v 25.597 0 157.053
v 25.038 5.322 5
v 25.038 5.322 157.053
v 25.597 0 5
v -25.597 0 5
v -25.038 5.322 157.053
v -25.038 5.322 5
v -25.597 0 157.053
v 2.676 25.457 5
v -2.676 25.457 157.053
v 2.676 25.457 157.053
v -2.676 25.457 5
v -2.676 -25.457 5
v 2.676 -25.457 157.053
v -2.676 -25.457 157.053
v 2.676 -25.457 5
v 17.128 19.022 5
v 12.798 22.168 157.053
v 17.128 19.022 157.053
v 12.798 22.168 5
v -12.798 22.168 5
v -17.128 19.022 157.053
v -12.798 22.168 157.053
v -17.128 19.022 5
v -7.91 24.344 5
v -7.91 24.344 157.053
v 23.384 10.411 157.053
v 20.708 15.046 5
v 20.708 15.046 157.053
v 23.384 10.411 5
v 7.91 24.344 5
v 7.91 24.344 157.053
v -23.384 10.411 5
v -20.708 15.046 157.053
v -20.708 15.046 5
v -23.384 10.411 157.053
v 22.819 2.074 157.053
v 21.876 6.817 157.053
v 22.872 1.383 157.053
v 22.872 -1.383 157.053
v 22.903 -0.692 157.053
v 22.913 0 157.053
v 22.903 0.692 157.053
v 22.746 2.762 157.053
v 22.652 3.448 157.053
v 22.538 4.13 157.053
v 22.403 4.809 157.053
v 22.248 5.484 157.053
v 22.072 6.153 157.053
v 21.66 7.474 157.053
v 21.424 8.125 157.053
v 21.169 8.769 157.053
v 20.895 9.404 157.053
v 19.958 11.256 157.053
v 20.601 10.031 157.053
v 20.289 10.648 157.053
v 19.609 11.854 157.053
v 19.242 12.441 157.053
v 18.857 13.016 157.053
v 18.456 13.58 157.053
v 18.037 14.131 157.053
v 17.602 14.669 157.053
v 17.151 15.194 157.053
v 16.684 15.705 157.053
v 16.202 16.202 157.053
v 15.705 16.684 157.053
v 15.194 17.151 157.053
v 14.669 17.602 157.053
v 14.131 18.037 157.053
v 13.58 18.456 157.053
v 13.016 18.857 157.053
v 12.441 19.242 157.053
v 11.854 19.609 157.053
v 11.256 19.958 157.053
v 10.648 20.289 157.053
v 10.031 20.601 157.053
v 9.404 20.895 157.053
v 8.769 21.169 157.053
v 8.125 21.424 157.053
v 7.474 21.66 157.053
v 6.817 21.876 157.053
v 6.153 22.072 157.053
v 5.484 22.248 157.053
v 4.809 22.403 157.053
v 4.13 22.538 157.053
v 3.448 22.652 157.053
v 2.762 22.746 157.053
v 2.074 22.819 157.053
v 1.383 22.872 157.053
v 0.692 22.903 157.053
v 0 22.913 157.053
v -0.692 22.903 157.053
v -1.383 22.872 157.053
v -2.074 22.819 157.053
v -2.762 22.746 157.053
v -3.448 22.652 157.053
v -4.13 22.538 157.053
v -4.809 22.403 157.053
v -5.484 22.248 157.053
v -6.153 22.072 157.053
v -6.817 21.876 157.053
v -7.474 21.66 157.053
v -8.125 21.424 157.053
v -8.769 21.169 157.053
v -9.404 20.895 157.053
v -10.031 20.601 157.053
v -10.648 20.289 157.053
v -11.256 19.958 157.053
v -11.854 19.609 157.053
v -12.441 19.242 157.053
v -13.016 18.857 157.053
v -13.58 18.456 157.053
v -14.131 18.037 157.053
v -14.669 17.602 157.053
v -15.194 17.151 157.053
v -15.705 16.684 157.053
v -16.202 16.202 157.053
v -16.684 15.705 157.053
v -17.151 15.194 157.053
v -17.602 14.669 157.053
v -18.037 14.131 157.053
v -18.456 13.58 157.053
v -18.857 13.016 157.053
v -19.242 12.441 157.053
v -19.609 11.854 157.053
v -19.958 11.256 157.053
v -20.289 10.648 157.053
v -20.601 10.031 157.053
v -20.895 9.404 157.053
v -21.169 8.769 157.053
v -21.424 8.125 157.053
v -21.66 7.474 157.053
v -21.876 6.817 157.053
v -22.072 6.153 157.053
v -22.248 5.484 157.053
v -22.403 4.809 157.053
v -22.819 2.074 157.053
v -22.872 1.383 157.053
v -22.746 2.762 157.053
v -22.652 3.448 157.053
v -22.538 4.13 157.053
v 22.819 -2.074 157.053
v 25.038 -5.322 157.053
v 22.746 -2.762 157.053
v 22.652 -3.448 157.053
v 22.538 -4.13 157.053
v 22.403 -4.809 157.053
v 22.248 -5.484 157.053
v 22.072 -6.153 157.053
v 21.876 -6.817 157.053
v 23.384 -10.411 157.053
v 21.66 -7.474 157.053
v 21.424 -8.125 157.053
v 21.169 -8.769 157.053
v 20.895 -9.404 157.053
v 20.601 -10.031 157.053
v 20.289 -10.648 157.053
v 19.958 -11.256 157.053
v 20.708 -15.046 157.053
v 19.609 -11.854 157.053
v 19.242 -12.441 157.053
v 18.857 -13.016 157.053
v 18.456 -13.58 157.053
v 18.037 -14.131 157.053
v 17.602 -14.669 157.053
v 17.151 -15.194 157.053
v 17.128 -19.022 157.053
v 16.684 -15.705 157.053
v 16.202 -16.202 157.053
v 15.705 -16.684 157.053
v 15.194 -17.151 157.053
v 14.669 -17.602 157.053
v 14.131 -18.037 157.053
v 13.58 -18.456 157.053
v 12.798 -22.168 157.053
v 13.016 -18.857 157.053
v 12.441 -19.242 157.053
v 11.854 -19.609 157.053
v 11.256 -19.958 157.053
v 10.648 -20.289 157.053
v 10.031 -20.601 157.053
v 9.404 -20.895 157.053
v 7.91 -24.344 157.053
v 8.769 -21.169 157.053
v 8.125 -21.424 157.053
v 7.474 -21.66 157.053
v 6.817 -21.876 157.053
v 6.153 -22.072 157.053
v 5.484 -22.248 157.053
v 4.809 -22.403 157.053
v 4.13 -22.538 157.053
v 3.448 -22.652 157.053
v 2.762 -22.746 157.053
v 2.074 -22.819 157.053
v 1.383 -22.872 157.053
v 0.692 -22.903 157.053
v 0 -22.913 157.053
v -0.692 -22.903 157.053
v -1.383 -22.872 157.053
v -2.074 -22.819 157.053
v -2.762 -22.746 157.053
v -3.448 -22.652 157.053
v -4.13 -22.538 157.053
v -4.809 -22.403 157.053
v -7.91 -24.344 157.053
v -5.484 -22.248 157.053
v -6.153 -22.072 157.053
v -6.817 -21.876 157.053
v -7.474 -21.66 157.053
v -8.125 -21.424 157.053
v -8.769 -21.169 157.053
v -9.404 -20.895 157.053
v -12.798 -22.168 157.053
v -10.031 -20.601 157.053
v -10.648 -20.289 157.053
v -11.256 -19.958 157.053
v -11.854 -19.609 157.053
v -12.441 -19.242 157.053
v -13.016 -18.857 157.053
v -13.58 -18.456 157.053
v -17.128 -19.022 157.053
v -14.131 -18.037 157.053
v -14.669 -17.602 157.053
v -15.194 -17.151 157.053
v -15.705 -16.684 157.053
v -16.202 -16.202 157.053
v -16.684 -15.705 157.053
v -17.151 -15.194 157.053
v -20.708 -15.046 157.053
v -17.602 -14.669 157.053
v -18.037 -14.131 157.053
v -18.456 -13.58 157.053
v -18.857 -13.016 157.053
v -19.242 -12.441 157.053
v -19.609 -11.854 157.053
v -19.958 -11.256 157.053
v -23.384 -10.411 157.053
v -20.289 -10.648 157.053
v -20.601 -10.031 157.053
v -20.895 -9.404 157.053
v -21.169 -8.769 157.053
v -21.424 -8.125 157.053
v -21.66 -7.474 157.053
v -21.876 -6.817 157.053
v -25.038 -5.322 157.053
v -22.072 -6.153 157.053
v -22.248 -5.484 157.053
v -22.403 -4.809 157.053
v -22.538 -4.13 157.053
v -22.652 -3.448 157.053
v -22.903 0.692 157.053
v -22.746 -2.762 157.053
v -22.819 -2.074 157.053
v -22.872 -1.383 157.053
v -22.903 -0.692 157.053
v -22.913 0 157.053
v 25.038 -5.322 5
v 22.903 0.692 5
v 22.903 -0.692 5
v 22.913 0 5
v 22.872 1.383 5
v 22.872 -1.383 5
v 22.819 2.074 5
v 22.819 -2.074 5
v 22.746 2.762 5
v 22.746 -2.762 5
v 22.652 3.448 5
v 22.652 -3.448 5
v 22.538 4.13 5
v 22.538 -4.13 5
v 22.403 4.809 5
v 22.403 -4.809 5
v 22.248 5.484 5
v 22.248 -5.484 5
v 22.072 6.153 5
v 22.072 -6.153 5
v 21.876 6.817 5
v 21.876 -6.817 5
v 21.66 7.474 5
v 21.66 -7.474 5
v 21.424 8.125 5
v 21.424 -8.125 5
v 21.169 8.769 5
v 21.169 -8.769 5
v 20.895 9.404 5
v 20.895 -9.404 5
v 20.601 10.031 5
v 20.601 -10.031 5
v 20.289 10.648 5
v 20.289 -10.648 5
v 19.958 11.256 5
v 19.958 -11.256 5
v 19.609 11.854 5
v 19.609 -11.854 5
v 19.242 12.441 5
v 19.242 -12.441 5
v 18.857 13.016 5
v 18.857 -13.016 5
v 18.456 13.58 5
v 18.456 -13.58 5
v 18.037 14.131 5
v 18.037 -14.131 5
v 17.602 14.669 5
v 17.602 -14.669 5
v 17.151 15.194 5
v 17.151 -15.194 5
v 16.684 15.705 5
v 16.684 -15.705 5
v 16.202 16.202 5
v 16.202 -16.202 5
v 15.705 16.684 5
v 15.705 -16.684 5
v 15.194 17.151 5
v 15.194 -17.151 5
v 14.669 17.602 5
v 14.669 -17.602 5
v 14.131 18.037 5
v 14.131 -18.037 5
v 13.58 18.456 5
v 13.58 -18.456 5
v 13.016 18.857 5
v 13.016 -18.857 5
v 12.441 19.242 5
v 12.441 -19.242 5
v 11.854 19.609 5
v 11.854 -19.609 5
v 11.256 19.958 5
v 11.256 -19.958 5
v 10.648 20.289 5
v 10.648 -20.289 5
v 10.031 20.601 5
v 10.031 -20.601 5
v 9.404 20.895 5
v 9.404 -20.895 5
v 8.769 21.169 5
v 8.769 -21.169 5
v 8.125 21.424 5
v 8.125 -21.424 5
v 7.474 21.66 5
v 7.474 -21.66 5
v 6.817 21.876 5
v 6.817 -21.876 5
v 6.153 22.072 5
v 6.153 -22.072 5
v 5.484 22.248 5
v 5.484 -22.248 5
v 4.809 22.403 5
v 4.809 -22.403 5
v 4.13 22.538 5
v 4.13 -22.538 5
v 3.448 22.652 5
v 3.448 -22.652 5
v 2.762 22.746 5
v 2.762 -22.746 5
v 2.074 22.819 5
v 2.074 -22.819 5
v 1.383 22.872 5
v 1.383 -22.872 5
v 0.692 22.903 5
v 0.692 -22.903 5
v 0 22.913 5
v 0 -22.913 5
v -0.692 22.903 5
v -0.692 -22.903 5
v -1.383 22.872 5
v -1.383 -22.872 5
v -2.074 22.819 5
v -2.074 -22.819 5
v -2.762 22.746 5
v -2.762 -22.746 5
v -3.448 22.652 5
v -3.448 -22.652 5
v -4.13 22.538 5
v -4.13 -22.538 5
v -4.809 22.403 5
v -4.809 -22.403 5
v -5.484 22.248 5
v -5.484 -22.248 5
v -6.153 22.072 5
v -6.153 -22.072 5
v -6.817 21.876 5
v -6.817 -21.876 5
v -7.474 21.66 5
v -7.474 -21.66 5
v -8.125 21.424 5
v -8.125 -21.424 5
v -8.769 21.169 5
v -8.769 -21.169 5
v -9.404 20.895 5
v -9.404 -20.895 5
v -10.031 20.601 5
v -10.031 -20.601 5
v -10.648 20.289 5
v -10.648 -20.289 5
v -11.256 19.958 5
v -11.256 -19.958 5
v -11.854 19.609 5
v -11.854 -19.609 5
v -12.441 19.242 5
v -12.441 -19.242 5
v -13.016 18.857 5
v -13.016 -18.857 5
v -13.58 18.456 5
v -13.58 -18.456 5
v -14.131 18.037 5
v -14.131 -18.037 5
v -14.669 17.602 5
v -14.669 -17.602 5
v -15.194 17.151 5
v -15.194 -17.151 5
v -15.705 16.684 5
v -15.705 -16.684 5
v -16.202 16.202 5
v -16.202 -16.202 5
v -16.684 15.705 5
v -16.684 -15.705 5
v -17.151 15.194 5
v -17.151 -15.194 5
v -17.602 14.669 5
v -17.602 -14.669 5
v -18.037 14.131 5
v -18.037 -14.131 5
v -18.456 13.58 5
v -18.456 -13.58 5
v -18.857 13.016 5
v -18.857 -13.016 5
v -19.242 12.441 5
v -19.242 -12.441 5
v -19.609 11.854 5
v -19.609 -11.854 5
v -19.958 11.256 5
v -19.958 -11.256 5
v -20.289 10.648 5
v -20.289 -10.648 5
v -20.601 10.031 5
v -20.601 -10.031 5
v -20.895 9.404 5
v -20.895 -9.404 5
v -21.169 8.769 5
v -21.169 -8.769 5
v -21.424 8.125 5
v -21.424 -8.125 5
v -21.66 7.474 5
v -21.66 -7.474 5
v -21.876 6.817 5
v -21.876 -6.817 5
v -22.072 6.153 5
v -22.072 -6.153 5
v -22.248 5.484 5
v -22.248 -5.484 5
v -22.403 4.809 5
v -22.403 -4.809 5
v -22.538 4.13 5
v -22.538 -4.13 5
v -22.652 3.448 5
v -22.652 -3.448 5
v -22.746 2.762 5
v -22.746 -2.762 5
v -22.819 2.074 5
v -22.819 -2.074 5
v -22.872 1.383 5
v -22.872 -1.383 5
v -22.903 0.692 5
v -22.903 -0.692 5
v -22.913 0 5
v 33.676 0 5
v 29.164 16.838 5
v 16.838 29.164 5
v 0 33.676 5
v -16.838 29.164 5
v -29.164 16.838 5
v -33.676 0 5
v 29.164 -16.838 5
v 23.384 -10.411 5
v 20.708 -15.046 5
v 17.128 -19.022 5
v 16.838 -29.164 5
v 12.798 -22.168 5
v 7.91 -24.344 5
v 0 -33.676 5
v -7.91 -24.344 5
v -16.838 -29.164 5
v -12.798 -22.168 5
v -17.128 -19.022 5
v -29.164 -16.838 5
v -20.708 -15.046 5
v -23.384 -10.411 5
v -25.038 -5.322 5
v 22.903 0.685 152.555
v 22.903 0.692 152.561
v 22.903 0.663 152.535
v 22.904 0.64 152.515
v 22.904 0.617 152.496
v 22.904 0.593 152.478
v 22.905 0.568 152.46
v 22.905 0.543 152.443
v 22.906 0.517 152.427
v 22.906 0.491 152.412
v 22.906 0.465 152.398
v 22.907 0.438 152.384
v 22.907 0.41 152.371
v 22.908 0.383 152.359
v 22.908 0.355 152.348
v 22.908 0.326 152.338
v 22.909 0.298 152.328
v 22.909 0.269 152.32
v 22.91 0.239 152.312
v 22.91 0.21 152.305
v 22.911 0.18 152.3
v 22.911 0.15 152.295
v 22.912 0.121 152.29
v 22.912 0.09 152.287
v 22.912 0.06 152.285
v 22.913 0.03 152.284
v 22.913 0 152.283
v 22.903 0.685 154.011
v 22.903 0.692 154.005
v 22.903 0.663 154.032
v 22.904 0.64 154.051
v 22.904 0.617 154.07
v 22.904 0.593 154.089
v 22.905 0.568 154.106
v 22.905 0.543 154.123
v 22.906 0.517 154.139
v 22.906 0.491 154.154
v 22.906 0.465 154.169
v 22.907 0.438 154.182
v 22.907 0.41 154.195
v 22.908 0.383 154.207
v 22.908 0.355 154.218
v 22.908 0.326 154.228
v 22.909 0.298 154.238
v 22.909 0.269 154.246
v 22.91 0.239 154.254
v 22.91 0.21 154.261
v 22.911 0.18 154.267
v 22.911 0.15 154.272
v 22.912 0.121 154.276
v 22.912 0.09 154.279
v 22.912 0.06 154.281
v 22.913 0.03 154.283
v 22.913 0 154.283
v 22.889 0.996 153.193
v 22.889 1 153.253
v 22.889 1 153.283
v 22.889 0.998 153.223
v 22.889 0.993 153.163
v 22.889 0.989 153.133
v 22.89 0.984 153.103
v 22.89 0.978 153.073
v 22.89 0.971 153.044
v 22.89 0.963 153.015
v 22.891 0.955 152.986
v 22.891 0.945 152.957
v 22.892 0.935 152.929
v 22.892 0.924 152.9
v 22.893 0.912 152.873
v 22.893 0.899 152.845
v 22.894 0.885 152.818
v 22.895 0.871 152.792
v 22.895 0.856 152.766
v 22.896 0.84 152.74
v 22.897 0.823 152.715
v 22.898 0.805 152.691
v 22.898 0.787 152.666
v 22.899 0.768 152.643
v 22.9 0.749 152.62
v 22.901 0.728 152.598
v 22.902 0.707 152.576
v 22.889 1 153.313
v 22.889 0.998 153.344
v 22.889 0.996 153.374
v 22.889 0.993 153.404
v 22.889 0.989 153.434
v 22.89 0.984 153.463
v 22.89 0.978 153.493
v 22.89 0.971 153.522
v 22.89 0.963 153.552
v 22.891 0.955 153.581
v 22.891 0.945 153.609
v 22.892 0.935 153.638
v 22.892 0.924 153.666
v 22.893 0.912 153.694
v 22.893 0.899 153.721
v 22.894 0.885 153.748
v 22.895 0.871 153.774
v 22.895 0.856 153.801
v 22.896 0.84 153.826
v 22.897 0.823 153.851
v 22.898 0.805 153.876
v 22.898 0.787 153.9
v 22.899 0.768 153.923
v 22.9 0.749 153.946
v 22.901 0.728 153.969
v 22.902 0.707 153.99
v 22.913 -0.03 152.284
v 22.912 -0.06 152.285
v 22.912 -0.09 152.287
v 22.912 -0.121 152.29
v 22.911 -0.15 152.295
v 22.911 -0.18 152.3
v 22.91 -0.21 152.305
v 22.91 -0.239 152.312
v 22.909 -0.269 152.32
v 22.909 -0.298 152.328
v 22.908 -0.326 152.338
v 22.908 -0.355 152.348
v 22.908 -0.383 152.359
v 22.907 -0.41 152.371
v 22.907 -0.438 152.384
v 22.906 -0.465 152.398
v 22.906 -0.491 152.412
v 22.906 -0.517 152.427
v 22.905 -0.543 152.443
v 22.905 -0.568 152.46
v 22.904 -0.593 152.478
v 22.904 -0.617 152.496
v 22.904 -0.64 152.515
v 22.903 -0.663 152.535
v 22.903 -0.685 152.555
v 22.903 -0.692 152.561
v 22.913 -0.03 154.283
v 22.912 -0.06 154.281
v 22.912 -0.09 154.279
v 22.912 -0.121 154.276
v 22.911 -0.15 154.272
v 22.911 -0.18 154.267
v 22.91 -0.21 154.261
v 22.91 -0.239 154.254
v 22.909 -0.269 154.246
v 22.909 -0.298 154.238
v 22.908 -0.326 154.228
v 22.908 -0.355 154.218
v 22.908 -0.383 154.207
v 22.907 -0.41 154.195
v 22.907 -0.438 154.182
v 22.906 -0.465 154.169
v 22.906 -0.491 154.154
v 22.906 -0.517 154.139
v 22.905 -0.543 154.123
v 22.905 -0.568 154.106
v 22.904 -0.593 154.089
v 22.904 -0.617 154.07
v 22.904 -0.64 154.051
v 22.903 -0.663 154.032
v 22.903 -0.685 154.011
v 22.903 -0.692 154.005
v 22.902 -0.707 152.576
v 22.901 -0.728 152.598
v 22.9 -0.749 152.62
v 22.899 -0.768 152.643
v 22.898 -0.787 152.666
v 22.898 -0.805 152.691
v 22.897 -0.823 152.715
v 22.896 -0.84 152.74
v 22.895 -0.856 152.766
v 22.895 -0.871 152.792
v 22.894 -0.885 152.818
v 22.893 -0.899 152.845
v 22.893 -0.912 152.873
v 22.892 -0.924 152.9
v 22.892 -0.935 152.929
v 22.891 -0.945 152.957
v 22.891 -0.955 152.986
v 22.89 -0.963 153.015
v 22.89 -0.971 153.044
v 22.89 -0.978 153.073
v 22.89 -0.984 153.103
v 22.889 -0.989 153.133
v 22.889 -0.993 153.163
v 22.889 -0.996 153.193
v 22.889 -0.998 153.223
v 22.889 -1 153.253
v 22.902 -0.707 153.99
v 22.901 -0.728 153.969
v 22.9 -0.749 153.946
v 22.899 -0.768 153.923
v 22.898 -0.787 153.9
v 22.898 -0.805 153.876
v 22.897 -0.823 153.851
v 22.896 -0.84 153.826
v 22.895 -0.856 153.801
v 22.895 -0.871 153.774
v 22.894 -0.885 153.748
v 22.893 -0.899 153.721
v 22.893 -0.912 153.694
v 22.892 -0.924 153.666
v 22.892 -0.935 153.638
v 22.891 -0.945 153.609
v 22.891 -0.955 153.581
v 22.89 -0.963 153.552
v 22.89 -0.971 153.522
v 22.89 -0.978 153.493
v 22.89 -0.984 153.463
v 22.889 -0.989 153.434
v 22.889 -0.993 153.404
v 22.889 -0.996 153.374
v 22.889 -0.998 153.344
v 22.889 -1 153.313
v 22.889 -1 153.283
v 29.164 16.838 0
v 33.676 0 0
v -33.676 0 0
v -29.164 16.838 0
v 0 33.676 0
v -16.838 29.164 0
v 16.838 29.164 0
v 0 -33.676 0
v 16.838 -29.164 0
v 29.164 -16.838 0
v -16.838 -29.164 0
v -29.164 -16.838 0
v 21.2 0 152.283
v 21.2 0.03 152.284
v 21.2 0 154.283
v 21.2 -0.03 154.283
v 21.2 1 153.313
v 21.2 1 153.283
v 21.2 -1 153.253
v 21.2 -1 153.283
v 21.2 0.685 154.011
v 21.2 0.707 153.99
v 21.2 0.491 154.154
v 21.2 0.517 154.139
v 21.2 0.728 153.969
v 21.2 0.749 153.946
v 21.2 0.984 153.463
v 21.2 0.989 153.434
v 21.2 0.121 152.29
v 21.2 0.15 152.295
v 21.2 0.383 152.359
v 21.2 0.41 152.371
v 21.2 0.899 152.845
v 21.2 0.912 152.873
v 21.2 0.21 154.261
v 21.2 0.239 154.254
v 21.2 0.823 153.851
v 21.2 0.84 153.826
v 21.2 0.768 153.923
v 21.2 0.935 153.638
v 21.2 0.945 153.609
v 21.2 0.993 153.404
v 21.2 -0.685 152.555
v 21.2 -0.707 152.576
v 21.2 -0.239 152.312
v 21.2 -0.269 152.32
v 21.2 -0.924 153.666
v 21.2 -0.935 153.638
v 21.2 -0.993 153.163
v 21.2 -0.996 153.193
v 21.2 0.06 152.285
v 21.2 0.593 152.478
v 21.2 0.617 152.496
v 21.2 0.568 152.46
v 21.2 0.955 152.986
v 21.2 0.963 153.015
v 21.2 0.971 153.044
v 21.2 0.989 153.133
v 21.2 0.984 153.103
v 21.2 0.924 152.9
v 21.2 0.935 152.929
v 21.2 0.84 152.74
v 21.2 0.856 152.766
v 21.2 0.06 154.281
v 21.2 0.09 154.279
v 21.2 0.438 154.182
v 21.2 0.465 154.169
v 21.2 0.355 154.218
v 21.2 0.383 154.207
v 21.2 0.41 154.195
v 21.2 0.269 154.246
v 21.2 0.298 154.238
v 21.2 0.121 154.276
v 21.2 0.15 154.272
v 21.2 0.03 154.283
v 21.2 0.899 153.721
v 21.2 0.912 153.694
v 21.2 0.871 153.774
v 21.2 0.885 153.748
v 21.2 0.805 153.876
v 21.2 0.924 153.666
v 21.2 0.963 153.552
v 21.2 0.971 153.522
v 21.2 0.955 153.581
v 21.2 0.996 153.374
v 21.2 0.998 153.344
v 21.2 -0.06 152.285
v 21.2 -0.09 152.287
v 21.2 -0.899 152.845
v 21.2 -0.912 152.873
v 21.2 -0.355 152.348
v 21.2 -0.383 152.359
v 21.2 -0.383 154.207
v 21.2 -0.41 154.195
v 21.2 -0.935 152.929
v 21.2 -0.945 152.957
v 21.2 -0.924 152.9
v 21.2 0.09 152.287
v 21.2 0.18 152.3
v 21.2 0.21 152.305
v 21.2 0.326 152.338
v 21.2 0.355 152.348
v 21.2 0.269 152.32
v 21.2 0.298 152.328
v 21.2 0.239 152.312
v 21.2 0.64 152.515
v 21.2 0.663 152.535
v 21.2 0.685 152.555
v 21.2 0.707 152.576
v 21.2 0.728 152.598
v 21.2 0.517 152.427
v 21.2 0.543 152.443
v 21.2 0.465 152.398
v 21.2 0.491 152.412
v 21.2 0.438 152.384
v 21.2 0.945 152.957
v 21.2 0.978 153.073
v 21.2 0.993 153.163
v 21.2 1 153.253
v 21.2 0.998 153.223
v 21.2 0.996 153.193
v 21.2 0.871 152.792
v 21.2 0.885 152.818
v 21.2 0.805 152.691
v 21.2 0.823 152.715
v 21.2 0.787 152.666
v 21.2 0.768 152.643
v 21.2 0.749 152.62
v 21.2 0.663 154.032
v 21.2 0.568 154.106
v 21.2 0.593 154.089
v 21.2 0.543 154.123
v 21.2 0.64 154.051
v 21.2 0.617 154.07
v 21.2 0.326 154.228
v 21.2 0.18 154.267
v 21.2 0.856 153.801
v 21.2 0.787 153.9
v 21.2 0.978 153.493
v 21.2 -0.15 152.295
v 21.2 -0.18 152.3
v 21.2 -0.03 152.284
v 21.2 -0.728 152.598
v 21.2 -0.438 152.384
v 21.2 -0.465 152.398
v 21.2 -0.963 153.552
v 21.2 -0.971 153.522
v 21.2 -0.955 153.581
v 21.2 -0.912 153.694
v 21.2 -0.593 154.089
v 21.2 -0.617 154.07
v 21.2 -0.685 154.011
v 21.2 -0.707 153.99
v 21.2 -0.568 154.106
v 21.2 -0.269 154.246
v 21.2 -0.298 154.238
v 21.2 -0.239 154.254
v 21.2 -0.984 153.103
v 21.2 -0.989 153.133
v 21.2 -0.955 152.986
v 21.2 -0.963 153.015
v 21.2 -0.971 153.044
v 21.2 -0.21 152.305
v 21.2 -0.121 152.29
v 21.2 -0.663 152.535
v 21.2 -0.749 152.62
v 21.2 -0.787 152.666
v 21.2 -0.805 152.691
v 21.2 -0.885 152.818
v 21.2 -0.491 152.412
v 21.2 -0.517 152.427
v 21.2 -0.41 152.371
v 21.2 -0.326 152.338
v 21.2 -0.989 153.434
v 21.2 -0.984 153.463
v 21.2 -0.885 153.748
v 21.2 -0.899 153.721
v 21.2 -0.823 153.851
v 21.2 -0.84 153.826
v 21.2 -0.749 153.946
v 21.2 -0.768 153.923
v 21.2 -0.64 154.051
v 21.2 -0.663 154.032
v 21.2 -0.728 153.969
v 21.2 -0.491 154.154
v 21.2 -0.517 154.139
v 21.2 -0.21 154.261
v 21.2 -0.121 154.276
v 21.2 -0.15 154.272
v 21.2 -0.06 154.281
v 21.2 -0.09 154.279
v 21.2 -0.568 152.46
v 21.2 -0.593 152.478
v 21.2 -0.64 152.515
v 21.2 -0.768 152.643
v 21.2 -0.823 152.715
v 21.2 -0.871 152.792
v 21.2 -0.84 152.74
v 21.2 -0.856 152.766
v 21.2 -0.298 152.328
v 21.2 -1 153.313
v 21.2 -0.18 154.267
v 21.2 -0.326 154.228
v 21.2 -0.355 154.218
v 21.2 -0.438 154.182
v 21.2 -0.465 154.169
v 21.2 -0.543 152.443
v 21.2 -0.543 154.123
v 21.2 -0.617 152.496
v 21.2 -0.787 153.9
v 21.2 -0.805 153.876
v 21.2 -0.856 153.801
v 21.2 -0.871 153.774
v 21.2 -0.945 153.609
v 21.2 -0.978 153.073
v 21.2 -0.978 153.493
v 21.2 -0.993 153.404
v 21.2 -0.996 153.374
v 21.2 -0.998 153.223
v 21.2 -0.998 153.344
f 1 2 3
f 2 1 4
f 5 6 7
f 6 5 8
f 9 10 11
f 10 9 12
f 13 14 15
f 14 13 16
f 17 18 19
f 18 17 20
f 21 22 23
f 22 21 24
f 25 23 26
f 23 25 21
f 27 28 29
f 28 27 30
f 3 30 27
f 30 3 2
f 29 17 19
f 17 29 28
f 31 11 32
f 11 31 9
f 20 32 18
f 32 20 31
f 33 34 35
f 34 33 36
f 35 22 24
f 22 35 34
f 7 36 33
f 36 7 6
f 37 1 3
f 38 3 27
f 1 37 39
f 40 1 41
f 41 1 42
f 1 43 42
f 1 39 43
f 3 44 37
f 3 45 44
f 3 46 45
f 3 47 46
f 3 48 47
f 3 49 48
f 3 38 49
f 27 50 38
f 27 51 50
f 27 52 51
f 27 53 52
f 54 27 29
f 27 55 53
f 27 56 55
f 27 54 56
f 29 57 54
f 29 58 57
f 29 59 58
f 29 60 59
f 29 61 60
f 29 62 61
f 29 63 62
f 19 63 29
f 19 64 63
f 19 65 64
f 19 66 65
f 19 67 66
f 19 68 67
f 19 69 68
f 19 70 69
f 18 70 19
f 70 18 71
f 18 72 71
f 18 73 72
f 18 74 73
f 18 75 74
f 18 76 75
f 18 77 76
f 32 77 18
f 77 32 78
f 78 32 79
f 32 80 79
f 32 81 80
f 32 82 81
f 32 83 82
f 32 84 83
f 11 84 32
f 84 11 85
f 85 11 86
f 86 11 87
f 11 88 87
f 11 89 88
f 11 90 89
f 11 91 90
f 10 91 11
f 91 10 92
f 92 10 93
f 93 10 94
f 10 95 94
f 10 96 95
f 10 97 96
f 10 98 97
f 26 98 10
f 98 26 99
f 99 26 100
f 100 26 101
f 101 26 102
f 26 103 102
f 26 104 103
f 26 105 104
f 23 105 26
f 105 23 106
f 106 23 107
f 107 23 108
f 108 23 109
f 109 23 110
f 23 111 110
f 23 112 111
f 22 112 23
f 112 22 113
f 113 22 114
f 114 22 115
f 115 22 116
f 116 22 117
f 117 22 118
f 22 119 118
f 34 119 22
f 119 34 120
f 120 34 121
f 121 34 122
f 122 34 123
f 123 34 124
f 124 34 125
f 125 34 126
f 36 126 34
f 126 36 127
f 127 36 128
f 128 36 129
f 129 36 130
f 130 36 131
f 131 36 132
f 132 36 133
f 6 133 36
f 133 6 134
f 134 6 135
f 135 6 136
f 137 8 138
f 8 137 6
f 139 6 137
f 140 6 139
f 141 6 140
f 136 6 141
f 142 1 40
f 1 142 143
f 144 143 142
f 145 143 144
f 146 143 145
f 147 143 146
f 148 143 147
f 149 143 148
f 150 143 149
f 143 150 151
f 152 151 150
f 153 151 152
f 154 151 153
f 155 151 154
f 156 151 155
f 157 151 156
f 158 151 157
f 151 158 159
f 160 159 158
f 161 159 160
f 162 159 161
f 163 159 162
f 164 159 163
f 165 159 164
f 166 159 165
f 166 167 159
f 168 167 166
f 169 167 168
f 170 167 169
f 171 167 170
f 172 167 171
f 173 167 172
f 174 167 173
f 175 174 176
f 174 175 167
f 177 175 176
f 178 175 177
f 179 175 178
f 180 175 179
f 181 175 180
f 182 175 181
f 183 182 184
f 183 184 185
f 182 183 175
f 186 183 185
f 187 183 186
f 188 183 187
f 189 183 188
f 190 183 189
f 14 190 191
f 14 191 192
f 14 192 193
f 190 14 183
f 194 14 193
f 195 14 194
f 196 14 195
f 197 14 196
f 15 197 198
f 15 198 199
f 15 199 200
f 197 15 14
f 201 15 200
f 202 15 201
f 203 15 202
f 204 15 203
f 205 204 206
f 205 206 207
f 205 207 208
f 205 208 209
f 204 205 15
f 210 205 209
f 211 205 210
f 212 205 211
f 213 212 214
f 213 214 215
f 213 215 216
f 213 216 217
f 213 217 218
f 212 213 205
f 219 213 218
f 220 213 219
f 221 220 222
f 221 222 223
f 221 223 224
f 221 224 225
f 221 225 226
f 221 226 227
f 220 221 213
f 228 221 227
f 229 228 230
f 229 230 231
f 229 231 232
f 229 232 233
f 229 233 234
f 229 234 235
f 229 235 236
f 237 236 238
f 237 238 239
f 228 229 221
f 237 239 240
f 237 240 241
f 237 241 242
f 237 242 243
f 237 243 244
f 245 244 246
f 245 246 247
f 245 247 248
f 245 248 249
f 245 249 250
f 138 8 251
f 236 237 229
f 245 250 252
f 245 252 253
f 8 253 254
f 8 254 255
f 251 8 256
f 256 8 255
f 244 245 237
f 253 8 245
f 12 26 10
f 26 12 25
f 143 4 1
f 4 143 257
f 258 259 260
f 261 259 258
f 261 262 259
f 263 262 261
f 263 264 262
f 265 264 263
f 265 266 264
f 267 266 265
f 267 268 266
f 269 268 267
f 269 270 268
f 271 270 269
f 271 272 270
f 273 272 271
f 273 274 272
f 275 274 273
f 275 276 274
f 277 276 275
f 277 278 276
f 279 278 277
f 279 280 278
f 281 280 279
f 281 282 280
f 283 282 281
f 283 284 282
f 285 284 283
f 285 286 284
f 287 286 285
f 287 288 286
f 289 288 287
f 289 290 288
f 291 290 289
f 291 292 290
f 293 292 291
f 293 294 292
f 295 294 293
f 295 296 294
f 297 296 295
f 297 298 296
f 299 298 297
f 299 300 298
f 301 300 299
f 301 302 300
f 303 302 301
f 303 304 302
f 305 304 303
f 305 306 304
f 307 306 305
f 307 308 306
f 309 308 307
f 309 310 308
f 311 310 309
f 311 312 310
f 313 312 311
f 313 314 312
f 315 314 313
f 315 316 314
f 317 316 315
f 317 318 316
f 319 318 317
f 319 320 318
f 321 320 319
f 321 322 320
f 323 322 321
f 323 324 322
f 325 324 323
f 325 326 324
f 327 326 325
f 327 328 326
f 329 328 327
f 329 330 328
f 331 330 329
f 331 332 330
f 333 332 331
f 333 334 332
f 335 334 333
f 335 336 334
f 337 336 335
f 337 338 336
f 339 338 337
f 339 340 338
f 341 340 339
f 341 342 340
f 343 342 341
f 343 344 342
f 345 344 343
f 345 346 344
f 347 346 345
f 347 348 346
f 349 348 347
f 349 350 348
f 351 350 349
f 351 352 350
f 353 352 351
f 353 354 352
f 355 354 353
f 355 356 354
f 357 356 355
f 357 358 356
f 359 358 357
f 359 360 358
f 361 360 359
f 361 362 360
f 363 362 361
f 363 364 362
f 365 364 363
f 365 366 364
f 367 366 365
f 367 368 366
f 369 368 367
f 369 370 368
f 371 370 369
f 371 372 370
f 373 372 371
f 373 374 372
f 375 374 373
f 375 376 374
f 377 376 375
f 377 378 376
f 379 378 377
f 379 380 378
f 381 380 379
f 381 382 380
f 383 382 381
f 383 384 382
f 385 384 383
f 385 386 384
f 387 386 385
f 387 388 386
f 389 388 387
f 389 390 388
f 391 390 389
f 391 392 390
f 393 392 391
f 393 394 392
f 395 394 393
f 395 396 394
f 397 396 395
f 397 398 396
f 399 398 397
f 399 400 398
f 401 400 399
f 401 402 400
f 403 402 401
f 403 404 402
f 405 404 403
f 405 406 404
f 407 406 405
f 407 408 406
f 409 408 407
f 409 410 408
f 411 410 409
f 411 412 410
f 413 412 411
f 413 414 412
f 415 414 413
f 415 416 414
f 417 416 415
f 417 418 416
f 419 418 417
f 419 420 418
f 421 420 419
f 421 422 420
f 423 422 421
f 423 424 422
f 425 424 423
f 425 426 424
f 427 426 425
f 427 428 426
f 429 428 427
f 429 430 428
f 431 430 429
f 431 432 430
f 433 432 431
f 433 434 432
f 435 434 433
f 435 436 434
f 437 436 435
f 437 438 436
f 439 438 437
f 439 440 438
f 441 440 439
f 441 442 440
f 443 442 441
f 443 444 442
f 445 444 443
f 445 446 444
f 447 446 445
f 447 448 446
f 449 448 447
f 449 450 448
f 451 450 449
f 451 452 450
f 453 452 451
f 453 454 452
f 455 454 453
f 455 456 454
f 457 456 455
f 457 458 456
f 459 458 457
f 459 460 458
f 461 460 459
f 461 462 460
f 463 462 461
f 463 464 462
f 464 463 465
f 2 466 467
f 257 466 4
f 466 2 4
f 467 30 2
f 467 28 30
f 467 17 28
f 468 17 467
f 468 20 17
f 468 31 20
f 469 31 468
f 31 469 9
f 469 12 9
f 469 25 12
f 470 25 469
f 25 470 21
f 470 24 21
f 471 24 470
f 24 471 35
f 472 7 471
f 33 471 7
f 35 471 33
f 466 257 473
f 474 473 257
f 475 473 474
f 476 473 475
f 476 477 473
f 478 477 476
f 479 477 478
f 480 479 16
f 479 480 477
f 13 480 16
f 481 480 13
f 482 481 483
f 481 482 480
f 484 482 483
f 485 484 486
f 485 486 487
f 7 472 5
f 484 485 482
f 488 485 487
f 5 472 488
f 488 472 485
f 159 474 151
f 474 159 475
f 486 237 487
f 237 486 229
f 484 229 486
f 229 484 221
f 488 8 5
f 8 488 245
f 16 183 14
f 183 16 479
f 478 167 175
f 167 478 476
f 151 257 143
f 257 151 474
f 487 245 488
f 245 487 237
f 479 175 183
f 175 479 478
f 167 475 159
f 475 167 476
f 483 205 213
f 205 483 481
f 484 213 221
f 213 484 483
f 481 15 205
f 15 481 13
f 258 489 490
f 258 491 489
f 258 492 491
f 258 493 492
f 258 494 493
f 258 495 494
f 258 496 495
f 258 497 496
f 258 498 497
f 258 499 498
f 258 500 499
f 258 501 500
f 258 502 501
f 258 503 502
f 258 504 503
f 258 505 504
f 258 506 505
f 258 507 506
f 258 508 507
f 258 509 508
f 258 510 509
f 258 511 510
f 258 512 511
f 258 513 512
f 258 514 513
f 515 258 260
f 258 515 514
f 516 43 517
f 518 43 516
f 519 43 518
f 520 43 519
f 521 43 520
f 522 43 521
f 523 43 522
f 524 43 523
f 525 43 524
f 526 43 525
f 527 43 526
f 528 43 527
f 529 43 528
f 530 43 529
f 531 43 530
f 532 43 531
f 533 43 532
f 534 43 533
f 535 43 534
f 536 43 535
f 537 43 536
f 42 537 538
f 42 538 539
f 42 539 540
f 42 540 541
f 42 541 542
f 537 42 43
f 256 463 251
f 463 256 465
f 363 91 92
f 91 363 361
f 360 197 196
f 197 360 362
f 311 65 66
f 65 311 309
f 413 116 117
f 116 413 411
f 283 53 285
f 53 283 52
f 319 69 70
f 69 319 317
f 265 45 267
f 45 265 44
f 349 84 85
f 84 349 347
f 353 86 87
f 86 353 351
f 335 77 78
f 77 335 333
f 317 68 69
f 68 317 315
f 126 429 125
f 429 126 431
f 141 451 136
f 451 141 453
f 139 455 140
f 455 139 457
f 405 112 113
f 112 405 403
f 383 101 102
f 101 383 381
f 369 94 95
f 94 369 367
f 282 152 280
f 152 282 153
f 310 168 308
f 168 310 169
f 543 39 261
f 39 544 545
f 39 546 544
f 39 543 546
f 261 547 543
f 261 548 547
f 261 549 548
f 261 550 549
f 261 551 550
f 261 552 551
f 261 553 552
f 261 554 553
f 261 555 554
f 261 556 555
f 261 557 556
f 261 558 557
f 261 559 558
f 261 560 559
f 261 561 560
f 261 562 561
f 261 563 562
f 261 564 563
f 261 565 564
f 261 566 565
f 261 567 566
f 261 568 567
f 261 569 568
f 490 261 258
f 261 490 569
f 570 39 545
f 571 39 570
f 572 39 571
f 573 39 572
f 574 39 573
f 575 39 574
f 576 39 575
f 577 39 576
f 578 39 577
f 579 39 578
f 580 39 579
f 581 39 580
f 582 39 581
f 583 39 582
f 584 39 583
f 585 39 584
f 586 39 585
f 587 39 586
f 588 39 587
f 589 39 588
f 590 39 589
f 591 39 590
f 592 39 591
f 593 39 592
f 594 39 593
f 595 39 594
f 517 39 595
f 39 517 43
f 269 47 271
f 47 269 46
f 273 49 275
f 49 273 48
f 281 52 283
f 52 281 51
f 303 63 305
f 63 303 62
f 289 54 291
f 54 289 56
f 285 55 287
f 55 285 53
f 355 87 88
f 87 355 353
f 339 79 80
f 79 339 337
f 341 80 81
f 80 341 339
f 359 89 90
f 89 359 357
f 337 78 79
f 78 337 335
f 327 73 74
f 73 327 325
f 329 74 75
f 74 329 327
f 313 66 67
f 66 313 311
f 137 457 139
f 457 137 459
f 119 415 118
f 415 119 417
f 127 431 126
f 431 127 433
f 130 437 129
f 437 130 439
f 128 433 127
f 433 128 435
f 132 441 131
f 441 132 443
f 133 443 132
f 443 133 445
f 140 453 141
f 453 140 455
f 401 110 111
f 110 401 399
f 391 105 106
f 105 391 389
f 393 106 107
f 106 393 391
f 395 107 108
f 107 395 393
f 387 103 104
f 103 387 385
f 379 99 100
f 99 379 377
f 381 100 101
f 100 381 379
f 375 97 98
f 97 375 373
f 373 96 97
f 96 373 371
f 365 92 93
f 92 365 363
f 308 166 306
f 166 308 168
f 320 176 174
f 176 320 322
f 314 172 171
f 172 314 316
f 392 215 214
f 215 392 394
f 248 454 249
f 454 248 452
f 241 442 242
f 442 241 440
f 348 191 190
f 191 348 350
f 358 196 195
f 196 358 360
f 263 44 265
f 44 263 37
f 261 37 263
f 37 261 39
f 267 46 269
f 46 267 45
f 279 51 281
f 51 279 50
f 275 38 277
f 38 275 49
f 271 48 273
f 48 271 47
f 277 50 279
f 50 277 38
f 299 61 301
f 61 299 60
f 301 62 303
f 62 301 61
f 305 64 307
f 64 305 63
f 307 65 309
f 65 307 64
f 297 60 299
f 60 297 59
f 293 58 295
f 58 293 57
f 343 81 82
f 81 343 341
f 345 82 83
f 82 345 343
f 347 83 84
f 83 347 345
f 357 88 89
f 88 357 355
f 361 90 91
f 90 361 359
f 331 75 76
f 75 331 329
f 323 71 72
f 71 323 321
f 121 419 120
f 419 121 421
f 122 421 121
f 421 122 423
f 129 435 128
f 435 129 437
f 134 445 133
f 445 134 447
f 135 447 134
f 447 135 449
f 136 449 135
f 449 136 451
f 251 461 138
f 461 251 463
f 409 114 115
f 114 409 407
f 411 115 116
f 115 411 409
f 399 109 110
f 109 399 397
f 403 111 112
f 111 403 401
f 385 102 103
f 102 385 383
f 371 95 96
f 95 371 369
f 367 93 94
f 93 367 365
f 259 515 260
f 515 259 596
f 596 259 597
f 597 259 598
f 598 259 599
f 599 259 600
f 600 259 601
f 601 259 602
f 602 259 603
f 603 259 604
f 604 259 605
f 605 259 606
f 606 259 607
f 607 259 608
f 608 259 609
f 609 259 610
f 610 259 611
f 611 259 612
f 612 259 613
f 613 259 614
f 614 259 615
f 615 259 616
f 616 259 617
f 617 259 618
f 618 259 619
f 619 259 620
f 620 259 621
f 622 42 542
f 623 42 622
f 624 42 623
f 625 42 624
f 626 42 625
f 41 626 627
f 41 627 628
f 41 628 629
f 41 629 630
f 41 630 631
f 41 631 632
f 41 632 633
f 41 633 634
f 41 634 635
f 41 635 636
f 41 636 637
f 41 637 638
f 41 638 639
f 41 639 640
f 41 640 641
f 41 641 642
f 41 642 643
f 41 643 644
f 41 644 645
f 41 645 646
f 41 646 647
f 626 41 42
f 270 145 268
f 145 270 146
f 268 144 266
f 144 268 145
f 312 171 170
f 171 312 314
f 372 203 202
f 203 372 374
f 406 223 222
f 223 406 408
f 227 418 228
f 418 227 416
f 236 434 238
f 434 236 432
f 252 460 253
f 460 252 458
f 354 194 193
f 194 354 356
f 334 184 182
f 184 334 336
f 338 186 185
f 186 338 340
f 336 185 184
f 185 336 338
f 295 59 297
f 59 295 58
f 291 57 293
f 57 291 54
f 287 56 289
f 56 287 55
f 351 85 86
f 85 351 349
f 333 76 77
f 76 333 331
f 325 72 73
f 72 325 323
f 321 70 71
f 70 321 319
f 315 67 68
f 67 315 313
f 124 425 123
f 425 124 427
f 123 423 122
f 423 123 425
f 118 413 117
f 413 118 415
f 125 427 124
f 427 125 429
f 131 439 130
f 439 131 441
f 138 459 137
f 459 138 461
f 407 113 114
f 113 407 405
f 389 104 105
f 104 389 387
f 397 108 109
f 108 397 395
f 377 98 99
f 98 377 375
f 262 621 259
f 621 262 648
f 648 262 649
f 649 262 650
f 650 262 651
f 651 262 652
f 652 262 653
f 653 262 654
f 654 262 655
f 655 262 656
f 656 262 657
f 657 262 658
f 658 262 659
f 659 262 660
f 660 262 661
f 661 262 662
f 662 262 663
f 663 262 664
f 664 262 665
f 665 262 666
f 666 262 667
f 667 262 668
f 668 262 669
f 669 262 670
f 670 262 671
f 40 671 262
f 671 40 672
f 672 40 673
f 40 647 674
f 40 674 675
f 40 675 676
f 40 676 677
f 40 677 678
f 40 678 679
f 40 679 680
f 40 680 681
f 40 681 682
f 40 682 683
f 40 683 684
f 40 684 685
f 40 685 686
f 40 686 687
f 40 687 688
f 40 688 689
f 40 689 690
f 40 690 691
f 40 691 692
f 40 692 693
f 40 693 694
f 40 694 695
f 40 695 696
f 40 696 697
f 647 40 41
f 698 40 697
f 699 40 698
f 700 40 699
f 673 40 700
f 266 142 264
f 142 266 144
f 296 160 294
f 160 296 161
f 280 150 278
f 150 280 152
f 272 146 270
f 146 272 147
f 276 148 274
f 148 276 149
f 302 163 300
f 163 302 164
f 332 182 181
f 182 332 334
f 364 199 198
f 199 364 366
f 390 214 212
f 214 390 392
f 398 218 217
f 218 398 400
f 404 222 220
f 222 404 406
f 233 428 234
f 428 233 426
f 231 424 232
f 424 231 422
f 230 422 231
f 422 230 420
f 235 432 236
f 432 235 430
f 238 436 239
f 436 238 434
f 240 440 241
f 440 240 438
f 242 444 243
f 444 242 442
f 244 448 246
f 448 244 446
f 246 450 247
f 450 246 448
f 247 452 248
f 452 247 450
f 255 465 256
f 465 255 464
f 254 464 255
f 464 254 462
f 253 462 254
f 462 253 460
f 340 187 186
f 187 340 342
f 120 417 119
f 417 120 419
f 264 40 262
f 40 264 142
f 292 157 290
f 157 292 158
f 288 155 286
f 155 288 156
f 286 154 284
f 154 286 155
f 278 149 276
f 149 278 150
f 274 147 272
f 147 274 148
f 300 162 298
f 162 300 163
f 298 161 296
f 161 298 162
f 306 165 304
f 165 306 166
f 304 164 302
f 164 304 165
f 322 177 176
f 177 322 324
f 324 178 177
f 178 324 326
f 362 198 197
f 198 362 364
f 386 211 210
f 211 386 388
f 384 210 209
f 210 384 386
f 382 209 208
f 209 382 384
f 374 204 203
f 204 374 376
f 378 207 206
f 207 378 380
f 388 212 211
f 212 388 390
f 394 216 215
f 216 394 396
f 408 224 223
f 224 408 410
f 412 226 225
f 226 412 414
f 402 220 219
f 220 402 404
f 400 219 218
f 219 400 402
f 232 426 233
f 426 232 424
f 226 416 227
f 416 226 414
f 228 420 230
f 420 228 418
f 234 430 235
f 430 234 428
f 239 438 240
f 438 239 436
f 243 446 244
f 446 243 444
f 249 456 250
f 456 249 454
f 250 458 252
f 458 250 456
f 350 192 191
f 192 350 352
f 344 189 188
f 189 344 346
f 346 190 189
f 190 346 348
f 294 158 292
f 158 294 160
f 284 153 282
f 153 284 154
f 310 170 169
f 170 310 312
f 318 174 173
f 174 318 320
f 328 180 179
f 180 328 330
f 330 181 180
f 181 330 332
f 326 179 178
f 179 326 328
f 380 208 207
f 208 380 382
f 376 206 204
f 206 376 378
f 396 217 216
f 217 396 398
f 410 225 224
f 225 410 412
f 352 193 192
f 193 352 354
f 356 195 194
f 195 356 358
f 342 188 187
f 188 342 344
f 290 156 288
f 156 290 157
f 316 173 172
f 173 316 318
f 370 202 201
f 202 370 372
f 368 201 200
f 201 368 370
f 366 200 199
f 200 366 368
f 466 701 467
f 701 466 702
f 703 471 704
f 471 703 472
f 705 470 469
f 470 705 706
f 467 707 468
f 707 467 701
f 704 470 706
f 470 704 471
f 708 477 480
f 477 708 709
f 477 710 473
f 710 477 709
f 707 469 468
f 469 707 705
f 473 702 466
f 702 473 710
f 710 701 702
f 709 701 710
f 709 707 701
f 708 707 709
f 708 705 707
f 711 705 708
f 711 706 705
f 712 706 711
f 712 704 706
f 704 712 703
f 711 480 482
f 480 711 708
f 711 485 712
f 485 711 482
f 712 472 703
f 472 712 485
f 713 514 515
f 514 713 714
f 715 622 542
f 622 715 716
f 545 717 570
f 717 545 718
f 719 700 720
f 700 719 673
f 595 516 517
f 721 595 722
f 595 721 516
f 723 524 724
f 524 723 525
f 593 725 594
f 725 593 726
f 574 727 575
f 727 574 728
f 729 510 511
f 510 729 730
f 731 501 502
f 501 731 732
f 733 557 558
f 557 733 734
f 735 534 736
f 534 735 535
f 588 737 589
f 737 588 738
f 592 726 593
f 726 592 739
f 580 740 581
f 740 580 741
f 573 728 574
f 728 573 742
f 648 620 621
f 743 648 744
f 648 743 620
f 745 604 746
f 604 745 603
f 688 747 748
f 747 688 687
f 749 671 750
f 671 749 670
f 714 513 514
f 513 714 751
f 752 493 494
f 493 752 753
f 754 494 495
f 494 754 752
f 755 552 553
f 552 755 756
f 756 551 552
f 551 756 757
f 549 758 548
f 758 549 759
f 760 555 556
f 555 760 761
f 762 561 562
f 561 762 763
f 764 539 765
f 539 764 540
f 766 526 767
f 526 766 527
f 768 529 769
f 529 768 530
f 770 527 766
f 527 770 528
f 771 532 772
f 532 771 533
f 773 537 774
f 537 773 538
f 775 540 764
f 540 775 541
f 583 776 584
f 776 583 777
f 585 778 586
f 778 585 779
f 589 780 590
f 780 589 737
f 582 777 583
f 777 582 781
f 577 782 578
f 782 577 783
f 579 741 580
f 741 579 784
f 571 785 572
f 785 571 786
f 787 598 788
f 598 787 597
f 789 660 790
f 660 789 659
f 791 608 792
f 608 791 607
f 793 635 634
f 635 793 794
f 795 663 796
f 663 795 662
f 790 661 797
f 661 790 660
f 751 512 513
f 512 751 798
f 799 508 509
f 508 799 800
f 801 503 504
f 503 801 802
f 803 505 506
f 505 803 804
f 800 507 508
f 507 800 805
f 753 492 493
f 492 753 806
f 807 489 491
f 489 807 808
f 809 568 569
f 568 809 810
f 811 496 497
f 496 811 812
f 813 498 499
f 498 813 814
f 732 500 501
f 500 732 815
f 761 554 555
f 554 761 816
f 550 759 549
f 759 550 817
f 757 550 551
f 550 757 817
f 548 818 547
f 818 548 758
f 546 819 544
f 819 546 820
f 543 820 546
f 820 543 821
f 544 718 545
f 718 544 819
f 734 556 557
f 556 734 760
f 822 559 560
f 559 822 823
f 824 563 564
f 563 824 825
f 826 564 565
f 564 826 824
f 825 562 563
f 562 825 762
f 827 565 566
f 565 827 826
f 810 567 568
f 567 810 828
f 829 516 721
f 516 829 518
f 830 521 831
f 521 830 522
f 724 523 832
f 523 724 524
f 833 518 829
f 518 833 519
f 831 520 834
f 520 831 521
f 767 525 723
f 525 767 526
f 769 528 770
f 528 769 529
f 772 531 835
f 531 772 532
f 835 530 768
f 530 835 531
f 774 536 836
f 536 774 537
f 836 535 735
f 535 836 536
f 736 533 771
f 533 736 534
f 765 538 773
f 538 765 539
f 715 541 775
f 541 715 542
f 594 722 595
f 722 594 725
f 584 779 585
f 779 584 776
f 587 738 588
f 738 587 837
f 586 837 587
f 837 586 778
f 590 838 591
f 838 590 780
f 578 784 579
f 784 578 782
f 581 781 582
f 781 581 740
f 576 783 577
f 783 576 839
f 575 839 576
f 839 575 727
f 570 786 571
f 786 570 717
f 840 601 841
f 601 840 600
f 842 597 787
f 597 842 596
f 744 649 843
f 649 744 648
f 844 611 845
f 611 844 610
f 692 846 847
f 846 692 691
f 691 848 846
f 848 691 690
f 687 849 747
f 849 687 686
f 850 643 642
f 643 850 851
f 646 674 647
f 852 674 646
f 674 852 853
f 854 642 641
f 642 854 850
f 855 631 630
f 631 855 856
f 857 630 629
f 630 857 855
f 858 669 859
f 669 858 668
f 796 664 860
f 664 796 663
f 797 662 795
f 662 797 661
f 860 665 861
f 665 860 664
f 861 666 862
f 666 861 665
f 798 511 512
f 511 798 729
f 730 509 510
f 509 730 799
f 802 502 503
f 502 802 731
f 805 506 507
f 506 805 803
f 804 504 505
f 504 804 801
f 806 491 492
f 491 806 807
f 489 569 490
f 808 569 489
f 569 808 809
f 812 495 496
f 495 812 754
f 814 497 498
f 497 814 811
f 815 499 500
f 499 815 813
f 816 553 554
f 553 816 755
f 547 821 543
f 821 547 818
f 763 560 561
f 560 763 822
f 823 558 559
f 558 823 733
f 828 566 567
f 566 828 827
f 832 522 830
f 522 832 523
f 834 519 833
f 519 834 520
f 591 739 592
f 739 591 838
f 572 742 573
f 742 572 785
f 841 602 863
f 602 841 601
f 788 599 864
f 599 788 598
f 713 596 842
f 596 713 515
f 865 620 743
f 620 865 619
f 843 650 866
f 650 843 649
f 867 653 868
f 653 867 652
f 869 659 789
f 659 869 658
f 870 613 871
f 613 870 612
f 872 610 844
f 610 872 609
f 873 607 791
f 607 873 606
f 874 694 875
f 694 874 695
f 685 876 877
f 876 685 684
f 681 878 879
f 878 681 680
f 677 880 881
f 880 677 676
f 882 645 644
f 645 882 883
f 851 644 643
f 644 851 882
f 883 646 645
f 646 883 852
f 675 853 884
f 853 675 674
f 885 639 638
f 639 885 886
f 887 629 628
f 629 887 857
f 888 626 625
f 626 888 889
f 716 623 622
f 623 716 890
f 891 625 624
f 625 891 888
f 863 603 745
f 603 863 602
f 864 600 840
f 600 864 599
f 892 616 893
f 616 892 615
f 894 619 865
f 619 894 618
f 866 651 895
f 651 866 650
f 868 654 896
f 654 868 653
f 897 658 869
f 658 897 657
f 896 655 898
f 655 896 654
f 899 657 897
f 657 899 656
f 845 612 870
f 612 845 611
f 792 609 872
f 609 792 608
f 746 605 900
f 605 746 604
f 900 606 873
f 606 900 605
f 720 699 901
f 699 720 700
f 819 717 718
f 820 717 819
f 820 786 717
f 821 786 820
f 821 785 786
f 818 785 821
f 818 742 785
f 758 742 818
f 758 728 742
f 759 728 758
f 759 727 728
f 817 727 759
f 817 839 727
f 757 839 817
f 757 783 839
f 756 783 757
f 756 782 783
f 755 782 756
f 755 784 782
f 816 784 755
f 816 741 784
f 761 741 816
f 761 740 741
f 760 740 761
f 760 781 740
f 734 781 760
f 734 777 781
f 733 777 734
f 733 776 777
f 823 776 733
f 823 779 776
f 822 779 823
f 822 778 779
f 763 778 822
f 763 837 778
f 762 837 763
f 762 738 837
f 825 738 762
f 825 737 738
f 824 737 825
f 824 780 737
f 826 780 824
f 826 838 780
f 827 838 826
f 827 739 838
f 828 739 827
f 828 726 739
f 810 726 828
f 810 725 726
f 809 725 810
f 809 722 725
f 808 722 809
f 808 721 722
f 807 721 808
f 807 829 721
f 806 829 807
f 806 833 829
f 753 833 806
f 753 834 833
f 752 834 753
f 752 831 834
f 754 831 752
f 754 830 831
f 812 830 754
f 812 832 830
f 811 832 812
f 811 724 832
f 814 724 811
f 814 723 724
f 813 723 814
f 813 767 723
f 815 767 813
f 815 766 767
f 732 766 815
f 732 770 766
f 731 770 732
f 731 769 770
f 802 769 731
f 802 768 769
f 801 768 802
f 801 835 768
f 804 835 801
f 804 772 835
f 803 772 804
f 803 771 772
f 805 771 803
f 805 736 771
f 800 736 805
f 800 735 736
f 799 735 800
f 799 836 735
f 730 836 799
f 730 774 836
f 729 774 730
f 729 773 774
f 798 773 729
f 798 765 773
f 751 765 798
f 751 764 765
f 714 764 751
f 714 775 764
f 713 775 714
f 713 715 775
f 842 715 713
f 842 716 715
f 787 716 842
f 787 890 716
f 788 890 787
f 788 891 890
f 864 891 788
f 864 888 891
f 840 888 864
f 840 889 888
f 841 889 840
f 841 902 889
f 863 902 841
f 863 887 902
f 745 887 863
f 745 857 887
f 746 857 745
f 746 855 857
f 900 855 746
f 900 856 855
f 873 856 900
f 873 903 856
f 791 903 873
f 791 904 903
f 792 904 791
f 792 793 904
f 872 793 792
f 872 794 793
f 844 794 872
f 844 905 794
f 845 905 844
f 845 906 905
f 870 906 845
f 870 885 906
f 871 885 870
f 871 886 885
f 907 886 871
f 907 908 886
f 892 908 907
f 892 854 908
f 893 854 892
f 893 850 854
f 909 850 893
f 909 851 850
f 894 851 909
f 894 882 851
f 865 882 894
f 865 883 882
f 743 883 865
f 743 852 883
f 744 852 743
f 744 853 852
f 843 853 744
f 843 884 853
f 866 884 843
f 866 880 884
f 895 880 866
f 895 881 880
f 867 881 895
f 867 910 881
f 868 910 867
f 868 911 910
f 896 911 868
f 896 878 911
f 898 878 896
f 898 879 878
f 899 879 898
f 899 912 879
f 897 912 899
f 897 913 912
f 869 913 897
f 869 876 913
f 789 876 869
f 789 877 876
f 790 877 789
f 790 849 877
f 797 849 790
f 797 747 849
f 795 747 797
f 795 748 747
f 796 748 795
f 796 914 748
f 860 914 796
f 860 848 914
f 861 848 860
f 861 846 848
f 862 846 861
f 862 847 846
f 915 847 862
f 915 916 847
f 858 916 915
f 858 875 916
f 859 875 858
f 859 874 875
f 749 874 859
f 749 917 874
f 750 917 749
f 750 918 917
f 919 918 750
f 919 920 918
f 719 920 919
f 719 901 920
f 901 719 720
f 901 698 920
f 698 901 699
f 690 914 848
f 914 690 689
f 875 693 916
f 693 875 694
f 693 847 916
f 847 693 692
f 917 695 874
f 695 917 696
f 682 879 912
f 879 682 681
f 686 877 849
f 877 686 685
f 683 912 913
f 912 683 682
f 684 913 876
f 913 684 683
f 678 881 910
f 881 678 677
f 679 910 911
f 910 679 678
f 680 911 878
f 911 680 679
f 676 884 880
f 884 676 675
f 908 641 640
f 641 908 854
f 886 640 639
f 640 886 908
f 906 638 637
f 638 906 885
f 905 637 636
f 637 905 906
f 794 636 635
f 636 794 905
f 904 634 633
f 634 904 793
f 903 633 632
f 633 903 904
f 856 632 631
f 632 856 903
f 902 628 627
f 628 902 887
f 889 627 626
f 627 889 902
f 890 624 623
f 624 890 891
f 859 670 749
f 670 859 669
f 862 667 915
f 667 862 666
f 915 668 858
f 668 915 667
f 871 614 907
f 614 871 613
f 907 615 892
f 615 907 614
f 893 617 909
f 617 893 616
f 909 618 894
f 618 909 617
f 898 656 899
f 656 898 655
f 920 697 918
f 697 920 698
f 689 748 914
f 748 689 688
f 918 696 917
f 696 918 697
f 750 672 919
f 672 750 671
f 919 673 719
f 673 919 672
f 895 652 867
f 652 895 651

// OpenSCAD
dimensions = [60, 50];
options = dimensions[1];
radius = 20;
slice_height = (radius * 2 * PI)/dimensions[1];
echo(slice_height);
ang = 360/options;
wall_radius = radius + slice_height;
echo(wall_radius*2);
IN_MM_CONVERSION = 25.4;
pvc_outer_radius = ((2.375)/2 * IN_MM_CONVERSION);
pvc_inner_radius = ((2.047)/2 * IN_MM_CONVERSION);
handle_radius = pvc_outer_radius + slice_height + 1;
bottom_thickness = 5;


cylinder(h=bottom_thickness, r=handle_radius, $fn=12);
difference () {
    translate([0, 0, bottom_thickness])
    cylinder(h=slice_height*(dimensions[0] + 0.5), r=pvc_inner_radius-.4);

    translate([0, 0, bottom_thickness])
    cylinder(h=slice_height*(dimensions[0] + 0.5),r=wall_radius+.4,$fn=208);
}
echo(slice_height*(dimensions[0] + 0.5)*2);
translate([21.2, 0, bottom_thickness+slice_height*(dimensions[0] - 1)]) // Account for bottom ring
rotate([0, 90, 0])
cylinder(r=1,h=2,$fn=208);
